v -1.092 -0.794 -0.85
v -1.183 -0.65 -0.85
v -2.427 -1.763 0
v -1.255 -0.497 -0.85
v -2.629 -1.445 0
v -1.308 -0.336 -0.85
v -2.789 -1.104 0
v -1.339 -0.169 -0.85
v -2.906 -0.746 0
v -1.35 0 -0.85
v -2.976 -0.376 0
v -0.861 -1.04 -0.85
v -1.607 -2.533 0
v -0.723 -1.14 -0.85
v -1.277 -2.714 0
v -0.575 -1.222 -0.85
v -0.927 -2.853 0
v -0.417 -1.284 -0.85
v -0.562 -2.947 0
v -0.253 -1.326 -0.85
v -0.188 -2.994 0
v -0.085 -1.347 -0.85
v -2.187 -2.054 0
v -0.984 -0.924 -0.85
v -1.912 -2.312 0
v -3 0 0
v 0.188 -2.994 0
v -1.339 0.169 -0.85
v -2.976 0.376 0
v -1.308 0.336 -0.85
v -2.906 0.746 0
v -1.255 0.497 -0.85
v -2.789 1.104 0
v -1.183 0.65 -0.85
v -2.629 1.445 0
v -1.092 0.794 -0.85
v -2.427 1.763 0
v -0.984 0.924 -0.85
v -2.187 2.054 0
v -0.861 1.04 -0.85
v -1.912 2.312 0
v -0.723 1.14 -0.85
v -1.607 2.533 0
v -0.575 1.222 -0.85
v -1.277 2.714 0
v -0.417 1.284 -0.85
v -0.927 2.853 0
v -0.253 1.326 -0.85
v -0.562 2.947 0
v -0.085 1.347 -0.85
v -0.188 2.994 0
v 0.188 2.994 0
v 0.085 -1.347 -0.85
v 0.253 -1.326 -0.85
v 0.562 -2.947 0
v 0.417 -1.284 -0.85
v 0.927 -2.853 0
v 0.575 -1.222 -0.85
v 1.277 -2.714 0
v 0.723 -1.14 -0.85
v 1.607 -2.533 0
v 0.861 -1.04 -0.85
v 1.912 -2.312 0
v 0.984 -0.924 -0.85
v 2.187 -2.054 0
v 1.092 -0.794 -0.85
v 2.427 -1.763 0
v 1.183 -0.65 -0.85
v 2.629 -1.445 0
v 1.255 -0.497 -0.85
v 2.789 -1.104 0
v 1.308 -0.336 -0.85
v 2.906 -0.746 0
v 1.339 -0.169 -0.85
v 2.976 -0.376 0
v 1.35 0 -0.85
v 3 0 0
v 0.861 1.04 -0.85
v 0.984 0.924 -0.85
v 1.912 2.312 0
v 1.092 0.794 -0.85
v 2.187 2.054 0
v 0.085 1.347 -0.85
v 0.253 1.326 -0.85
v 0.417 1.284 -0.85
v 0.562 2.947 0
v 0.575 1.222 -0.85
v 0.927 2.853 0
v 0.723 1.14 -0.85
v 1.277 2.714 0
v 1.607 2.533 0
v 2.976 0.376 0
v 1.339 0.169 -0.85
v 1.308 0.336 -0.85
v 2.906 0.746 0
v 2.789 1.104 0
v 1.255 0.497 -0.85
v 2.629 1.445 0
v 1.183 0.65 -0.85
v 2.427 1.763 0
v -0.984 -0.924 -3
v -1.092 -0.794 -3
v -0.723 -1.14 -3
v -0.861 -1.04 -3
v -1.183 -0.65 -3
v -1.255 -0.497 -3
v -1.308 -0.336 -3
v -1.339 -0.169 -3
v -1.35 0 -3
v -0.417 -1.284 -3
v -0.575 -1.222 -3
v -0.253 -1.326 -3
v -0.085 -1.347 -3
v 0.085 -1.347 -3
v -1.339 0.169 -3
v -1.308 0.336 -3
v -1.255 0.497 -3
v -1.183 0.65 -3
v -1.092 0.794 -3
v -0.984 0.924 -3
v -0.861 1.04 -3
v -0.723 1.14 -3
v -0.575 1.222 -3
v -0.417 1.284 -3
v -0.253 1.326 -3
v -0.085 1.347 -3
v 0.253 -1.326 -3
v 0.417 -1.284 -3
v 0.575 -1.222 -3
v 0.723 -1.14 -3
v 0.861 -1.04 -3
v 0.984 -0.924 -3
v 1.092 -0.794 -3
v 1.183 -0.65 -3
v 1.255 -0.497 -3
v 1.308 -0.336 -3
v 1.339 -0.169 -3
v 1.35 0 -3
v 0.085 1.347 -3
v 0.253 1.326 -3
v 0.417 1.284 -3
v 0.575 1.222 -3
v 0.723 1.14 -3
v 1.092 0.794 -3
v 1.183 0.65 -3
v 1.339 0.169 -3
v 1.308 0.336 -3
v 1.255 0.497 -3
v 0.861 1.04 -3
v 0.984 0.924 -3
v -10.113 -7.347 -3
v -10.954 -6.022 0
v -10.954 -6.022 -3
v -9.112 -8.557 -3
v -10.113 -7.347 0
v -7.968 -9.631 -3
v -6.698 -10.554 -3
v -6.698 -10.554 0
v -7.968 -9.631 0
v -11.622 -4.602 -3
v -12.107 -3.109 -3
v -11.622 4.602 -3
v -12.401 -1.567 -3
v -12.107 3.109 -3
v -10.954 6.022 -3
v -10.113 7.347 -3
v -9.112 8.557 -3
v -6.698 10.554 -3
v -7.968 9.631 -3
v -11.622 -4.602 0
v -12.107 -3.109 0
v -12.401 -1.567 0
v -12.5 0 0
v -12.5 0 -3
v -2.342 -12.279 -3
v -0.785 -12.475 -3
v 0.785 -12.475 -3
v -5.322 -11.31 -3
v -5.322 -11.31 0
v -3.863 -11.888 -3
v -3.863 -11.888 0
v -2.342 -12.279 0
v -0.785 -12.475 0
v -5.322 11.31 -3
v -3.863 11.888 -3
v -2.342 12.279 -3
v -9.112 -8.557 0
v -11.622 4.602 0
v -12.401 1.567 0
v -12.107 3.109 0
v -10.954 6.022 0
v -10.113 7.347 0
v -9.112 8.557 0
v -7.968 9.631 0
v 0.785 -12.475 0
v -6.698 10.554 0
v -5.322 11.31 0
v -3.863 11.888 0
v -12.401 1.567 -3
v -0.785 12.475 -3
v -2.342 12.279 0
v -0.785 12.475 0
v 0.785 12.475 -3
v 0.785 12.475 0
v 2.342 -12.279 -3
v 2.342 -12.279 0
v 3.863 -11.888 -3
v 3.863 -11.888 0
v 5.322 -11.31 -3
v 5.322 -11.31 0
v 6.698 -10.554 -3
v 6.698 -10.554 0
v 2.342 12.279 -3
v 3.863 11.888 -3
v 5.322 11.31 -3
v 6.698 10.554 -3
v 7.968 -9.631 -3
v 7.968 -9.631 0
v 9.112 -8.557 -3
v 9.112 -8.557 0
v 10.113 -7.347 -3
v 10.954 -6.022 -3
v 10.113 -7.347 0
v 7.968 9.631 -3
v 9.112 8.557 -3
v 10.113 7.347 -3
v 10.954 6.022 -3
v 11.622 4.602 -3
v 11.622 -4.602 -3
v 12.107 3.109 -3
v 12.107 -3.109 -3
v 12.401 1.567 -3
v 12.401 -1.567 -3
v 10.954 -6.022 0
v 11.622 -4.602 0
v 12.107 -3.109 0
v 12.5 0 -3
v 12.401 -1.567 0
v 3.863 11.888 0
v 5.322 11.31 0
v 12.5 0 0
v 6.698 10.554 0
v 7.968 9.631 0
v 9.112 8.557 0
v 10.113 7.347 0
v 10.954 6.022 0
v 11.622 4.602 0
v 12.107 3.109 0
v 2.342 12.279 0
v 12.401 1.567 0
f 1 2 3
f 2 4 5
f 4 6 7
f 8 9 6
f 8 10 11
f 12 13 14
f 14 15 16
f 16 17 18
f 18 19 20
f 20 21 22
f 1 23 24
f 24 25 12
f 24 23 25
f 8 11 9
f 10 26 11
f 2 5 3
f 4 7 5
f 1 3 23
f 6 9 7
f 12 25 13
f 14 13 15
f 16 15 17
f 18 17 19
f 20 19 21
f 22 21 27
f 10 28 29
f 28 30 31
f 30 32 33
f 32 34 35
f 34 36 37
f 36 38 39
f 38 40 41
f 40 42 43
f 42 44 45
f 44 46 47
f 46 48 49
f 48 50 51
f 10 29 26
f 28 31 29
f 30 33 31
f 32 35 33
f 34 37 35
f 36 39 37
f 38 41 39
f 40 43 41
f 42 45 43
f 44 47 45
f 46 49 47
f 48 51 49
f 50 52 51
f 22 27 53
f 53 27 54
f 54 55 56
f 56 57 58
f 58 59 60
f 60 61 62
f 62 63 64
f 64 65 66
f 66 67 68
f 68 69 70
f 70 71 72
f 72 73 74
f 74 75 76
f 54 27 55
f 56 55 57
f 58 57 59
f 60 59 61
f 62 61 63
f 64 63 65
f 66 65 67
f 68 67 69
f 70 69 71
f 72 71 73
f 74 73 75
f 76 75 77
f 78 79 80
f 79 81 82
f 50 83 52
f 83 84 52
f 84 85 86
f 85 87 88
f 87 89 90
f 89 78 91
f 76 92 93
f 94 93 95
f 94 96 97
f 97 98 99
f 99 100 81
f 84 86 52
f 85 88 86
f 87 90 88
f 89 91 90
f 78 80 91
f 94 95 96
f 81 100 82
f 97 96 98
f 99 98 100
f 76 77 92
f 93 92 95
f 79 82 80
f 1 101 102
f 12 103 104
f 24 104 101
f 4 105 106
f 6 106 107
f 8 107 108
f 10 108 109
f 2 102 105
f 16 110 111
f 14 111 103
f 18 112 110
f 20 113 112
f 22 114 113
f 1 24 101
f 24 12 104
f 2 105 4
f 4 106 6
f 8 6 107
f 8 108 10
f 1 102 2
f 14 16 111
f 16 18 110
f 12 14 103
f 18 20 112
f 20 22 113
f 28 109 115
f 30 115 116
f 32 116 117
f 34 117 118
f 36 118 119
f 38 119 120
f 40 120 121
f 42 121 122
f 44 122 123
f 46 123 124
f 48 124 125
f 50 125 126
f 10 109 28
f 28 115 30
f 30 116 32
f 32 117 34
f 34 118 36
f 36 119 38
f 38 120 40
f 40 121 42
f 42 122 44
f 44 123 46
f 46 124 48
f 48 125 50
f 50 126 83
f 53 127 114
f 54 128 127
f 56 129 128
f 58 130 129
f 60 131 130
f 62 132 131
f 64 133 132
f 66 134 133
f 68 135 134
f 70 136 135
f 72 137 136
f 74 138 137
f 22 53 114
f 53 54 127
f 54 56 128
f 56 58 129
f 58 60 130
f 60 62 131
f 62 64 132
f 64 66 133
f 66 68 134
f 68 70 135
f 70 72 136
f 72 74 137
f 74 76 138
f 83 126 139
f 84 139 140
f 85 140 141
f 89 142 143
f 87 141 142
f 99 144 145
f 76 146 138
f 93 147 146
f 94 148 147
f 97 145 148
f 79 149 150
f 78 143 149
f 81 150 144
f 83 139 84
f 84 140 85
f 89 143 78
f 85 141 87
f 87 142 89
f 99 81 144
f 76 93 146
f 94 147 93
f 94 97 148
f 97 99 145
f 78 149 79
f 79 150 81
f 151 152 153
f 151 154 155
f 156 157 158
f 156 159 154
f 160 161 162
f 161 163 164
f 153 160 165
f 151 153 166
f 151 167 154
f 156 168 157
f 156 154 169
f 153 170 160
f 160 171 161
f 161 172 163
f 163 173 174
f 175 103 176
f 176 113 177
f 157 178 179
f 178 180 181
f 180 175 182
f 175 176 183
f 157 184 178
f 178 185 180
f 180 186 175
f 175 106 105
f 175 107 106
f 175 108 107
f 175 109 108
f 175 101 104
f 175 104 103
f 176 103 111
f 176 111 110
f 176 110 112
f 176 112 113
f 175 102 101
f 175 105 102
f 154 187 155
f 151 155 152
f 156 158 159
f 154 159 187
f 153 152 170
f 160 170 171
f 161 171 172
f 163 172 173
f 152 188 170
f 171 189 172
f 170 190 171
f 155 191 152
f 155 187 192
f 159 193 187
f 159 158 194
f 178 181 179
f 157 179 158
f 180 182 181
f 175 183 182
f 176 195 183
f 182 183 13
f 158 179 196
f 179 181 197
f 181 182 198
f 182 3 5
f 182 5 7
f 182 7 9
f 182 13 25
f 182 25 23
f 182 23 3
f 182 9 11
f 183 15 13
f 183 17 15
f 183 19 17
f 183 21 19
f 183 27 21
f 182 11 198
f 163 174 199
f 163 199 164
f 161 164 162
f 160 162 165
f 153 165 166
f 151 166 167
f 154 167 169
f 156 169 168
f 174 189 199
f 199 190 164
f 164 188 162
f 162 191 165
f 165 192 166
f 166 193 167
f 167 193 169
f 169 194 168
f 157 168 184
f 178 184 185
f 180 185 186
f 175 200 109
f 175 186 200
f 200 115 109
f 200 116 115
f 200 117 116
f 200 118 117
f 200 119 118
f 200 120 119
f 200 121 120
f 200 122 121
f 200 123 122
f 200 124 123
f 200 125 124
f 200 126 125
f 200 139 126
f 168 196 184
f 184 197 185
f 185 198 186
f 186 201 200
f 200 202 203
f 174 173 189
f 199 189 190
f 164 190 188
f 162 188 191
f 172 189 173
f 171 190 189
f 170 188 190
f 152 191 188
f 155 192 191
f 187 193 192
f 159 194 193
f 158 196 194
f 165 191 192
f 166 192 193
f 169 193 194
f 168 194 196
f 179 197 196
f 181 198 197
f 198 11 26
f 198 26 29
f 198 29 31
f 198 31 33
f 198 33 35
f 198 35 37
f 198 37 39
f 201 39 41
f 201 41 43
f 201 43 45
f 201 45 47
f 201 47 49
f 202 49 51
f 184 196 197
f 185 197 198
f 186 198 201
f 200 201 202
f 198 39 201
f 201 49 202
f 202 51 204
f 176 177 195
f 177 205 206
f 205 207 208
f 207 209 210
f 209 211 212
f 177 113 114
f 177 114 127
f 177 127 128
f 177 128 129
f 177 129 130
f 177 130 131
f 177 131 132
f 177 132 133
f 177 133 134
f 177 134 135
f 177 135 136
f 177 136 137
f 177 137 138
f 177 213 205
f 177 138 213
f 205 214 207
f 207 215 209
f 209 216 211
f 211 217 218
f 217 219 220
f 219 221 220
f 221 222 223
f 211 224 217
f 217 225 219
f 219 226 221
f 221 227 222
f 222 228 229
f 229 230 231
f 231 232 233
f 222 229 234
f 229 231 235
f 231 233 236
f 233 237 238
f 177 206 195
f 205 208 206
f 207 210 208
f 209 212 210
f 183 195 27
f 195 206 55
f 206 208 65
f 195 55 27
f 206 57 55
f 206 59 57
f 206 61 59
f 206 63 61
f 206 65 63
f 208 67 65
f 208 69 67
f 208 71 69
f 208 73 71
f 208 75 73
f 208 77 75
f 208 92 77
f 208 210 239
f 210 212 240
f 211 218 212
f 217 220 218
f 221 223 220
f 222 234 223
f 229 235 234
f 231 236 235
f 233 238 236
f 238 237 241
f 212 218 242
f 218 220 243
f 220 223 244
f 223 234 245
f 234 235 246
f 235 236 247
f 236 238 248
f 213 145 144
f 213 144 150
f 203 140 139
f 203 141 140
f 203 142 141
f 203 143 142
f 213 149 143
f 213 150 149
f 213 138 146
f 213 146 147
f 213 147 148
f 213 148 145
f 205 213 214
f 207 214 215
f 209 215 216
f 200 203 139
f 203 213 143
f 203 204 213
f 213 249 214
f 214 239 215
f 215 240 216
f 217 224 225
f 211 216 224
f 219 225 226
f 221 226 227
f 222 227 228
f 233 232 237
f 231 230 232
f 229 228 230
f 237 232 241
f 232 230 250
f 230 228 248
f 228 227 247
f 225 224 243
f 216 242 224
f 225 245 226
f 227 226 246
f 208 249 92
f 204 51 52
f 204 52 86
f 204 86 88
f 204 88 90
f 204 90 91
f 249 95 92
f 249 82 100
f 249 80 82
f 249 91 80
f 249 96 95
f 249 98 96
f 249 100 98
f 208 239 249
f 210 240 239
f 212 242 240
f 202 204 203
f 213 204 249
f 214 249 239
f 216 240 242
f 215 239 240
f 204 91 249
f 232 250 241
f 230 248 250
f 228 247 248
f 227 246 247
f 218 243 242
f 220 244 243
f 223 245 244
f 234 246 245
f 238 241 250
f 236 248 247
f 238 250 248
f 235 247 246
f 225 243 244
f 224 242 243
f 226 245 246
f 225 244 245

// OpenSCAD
$fn = 50;


difference() {
	union() {
		translate(v = [0, 0, -3.0000000000]) {
			cylinder(h = 3, r = 12.5000000000);
		}
	}
	union() {
		translate(v = [0, 0, 0]) {
			rotate(a = [0, 0, 0]) {
				difference() {
					union() {
						translate(v = [0, 0, -6.0000000000]) {
							cylinder(h = 6, r = 1.0000000000);
						}
						translate(v = [0, 0, -0.8500000000]) {
							cylinder(h = 0.8500000000, r1 = 1.3500000000, r2 = 3.0000000000);
						}
						translate(v = [0, 0, -6.0000000000]) {
							cylinder(h = 6, r = 1.3500000000);
						}
						translate(v = [0, 0, -6.0000000000]) {
							cylinder(h = 6, r = 1.0000000000);
						}
					}
					union();
				}
			}
		}
	}
}
